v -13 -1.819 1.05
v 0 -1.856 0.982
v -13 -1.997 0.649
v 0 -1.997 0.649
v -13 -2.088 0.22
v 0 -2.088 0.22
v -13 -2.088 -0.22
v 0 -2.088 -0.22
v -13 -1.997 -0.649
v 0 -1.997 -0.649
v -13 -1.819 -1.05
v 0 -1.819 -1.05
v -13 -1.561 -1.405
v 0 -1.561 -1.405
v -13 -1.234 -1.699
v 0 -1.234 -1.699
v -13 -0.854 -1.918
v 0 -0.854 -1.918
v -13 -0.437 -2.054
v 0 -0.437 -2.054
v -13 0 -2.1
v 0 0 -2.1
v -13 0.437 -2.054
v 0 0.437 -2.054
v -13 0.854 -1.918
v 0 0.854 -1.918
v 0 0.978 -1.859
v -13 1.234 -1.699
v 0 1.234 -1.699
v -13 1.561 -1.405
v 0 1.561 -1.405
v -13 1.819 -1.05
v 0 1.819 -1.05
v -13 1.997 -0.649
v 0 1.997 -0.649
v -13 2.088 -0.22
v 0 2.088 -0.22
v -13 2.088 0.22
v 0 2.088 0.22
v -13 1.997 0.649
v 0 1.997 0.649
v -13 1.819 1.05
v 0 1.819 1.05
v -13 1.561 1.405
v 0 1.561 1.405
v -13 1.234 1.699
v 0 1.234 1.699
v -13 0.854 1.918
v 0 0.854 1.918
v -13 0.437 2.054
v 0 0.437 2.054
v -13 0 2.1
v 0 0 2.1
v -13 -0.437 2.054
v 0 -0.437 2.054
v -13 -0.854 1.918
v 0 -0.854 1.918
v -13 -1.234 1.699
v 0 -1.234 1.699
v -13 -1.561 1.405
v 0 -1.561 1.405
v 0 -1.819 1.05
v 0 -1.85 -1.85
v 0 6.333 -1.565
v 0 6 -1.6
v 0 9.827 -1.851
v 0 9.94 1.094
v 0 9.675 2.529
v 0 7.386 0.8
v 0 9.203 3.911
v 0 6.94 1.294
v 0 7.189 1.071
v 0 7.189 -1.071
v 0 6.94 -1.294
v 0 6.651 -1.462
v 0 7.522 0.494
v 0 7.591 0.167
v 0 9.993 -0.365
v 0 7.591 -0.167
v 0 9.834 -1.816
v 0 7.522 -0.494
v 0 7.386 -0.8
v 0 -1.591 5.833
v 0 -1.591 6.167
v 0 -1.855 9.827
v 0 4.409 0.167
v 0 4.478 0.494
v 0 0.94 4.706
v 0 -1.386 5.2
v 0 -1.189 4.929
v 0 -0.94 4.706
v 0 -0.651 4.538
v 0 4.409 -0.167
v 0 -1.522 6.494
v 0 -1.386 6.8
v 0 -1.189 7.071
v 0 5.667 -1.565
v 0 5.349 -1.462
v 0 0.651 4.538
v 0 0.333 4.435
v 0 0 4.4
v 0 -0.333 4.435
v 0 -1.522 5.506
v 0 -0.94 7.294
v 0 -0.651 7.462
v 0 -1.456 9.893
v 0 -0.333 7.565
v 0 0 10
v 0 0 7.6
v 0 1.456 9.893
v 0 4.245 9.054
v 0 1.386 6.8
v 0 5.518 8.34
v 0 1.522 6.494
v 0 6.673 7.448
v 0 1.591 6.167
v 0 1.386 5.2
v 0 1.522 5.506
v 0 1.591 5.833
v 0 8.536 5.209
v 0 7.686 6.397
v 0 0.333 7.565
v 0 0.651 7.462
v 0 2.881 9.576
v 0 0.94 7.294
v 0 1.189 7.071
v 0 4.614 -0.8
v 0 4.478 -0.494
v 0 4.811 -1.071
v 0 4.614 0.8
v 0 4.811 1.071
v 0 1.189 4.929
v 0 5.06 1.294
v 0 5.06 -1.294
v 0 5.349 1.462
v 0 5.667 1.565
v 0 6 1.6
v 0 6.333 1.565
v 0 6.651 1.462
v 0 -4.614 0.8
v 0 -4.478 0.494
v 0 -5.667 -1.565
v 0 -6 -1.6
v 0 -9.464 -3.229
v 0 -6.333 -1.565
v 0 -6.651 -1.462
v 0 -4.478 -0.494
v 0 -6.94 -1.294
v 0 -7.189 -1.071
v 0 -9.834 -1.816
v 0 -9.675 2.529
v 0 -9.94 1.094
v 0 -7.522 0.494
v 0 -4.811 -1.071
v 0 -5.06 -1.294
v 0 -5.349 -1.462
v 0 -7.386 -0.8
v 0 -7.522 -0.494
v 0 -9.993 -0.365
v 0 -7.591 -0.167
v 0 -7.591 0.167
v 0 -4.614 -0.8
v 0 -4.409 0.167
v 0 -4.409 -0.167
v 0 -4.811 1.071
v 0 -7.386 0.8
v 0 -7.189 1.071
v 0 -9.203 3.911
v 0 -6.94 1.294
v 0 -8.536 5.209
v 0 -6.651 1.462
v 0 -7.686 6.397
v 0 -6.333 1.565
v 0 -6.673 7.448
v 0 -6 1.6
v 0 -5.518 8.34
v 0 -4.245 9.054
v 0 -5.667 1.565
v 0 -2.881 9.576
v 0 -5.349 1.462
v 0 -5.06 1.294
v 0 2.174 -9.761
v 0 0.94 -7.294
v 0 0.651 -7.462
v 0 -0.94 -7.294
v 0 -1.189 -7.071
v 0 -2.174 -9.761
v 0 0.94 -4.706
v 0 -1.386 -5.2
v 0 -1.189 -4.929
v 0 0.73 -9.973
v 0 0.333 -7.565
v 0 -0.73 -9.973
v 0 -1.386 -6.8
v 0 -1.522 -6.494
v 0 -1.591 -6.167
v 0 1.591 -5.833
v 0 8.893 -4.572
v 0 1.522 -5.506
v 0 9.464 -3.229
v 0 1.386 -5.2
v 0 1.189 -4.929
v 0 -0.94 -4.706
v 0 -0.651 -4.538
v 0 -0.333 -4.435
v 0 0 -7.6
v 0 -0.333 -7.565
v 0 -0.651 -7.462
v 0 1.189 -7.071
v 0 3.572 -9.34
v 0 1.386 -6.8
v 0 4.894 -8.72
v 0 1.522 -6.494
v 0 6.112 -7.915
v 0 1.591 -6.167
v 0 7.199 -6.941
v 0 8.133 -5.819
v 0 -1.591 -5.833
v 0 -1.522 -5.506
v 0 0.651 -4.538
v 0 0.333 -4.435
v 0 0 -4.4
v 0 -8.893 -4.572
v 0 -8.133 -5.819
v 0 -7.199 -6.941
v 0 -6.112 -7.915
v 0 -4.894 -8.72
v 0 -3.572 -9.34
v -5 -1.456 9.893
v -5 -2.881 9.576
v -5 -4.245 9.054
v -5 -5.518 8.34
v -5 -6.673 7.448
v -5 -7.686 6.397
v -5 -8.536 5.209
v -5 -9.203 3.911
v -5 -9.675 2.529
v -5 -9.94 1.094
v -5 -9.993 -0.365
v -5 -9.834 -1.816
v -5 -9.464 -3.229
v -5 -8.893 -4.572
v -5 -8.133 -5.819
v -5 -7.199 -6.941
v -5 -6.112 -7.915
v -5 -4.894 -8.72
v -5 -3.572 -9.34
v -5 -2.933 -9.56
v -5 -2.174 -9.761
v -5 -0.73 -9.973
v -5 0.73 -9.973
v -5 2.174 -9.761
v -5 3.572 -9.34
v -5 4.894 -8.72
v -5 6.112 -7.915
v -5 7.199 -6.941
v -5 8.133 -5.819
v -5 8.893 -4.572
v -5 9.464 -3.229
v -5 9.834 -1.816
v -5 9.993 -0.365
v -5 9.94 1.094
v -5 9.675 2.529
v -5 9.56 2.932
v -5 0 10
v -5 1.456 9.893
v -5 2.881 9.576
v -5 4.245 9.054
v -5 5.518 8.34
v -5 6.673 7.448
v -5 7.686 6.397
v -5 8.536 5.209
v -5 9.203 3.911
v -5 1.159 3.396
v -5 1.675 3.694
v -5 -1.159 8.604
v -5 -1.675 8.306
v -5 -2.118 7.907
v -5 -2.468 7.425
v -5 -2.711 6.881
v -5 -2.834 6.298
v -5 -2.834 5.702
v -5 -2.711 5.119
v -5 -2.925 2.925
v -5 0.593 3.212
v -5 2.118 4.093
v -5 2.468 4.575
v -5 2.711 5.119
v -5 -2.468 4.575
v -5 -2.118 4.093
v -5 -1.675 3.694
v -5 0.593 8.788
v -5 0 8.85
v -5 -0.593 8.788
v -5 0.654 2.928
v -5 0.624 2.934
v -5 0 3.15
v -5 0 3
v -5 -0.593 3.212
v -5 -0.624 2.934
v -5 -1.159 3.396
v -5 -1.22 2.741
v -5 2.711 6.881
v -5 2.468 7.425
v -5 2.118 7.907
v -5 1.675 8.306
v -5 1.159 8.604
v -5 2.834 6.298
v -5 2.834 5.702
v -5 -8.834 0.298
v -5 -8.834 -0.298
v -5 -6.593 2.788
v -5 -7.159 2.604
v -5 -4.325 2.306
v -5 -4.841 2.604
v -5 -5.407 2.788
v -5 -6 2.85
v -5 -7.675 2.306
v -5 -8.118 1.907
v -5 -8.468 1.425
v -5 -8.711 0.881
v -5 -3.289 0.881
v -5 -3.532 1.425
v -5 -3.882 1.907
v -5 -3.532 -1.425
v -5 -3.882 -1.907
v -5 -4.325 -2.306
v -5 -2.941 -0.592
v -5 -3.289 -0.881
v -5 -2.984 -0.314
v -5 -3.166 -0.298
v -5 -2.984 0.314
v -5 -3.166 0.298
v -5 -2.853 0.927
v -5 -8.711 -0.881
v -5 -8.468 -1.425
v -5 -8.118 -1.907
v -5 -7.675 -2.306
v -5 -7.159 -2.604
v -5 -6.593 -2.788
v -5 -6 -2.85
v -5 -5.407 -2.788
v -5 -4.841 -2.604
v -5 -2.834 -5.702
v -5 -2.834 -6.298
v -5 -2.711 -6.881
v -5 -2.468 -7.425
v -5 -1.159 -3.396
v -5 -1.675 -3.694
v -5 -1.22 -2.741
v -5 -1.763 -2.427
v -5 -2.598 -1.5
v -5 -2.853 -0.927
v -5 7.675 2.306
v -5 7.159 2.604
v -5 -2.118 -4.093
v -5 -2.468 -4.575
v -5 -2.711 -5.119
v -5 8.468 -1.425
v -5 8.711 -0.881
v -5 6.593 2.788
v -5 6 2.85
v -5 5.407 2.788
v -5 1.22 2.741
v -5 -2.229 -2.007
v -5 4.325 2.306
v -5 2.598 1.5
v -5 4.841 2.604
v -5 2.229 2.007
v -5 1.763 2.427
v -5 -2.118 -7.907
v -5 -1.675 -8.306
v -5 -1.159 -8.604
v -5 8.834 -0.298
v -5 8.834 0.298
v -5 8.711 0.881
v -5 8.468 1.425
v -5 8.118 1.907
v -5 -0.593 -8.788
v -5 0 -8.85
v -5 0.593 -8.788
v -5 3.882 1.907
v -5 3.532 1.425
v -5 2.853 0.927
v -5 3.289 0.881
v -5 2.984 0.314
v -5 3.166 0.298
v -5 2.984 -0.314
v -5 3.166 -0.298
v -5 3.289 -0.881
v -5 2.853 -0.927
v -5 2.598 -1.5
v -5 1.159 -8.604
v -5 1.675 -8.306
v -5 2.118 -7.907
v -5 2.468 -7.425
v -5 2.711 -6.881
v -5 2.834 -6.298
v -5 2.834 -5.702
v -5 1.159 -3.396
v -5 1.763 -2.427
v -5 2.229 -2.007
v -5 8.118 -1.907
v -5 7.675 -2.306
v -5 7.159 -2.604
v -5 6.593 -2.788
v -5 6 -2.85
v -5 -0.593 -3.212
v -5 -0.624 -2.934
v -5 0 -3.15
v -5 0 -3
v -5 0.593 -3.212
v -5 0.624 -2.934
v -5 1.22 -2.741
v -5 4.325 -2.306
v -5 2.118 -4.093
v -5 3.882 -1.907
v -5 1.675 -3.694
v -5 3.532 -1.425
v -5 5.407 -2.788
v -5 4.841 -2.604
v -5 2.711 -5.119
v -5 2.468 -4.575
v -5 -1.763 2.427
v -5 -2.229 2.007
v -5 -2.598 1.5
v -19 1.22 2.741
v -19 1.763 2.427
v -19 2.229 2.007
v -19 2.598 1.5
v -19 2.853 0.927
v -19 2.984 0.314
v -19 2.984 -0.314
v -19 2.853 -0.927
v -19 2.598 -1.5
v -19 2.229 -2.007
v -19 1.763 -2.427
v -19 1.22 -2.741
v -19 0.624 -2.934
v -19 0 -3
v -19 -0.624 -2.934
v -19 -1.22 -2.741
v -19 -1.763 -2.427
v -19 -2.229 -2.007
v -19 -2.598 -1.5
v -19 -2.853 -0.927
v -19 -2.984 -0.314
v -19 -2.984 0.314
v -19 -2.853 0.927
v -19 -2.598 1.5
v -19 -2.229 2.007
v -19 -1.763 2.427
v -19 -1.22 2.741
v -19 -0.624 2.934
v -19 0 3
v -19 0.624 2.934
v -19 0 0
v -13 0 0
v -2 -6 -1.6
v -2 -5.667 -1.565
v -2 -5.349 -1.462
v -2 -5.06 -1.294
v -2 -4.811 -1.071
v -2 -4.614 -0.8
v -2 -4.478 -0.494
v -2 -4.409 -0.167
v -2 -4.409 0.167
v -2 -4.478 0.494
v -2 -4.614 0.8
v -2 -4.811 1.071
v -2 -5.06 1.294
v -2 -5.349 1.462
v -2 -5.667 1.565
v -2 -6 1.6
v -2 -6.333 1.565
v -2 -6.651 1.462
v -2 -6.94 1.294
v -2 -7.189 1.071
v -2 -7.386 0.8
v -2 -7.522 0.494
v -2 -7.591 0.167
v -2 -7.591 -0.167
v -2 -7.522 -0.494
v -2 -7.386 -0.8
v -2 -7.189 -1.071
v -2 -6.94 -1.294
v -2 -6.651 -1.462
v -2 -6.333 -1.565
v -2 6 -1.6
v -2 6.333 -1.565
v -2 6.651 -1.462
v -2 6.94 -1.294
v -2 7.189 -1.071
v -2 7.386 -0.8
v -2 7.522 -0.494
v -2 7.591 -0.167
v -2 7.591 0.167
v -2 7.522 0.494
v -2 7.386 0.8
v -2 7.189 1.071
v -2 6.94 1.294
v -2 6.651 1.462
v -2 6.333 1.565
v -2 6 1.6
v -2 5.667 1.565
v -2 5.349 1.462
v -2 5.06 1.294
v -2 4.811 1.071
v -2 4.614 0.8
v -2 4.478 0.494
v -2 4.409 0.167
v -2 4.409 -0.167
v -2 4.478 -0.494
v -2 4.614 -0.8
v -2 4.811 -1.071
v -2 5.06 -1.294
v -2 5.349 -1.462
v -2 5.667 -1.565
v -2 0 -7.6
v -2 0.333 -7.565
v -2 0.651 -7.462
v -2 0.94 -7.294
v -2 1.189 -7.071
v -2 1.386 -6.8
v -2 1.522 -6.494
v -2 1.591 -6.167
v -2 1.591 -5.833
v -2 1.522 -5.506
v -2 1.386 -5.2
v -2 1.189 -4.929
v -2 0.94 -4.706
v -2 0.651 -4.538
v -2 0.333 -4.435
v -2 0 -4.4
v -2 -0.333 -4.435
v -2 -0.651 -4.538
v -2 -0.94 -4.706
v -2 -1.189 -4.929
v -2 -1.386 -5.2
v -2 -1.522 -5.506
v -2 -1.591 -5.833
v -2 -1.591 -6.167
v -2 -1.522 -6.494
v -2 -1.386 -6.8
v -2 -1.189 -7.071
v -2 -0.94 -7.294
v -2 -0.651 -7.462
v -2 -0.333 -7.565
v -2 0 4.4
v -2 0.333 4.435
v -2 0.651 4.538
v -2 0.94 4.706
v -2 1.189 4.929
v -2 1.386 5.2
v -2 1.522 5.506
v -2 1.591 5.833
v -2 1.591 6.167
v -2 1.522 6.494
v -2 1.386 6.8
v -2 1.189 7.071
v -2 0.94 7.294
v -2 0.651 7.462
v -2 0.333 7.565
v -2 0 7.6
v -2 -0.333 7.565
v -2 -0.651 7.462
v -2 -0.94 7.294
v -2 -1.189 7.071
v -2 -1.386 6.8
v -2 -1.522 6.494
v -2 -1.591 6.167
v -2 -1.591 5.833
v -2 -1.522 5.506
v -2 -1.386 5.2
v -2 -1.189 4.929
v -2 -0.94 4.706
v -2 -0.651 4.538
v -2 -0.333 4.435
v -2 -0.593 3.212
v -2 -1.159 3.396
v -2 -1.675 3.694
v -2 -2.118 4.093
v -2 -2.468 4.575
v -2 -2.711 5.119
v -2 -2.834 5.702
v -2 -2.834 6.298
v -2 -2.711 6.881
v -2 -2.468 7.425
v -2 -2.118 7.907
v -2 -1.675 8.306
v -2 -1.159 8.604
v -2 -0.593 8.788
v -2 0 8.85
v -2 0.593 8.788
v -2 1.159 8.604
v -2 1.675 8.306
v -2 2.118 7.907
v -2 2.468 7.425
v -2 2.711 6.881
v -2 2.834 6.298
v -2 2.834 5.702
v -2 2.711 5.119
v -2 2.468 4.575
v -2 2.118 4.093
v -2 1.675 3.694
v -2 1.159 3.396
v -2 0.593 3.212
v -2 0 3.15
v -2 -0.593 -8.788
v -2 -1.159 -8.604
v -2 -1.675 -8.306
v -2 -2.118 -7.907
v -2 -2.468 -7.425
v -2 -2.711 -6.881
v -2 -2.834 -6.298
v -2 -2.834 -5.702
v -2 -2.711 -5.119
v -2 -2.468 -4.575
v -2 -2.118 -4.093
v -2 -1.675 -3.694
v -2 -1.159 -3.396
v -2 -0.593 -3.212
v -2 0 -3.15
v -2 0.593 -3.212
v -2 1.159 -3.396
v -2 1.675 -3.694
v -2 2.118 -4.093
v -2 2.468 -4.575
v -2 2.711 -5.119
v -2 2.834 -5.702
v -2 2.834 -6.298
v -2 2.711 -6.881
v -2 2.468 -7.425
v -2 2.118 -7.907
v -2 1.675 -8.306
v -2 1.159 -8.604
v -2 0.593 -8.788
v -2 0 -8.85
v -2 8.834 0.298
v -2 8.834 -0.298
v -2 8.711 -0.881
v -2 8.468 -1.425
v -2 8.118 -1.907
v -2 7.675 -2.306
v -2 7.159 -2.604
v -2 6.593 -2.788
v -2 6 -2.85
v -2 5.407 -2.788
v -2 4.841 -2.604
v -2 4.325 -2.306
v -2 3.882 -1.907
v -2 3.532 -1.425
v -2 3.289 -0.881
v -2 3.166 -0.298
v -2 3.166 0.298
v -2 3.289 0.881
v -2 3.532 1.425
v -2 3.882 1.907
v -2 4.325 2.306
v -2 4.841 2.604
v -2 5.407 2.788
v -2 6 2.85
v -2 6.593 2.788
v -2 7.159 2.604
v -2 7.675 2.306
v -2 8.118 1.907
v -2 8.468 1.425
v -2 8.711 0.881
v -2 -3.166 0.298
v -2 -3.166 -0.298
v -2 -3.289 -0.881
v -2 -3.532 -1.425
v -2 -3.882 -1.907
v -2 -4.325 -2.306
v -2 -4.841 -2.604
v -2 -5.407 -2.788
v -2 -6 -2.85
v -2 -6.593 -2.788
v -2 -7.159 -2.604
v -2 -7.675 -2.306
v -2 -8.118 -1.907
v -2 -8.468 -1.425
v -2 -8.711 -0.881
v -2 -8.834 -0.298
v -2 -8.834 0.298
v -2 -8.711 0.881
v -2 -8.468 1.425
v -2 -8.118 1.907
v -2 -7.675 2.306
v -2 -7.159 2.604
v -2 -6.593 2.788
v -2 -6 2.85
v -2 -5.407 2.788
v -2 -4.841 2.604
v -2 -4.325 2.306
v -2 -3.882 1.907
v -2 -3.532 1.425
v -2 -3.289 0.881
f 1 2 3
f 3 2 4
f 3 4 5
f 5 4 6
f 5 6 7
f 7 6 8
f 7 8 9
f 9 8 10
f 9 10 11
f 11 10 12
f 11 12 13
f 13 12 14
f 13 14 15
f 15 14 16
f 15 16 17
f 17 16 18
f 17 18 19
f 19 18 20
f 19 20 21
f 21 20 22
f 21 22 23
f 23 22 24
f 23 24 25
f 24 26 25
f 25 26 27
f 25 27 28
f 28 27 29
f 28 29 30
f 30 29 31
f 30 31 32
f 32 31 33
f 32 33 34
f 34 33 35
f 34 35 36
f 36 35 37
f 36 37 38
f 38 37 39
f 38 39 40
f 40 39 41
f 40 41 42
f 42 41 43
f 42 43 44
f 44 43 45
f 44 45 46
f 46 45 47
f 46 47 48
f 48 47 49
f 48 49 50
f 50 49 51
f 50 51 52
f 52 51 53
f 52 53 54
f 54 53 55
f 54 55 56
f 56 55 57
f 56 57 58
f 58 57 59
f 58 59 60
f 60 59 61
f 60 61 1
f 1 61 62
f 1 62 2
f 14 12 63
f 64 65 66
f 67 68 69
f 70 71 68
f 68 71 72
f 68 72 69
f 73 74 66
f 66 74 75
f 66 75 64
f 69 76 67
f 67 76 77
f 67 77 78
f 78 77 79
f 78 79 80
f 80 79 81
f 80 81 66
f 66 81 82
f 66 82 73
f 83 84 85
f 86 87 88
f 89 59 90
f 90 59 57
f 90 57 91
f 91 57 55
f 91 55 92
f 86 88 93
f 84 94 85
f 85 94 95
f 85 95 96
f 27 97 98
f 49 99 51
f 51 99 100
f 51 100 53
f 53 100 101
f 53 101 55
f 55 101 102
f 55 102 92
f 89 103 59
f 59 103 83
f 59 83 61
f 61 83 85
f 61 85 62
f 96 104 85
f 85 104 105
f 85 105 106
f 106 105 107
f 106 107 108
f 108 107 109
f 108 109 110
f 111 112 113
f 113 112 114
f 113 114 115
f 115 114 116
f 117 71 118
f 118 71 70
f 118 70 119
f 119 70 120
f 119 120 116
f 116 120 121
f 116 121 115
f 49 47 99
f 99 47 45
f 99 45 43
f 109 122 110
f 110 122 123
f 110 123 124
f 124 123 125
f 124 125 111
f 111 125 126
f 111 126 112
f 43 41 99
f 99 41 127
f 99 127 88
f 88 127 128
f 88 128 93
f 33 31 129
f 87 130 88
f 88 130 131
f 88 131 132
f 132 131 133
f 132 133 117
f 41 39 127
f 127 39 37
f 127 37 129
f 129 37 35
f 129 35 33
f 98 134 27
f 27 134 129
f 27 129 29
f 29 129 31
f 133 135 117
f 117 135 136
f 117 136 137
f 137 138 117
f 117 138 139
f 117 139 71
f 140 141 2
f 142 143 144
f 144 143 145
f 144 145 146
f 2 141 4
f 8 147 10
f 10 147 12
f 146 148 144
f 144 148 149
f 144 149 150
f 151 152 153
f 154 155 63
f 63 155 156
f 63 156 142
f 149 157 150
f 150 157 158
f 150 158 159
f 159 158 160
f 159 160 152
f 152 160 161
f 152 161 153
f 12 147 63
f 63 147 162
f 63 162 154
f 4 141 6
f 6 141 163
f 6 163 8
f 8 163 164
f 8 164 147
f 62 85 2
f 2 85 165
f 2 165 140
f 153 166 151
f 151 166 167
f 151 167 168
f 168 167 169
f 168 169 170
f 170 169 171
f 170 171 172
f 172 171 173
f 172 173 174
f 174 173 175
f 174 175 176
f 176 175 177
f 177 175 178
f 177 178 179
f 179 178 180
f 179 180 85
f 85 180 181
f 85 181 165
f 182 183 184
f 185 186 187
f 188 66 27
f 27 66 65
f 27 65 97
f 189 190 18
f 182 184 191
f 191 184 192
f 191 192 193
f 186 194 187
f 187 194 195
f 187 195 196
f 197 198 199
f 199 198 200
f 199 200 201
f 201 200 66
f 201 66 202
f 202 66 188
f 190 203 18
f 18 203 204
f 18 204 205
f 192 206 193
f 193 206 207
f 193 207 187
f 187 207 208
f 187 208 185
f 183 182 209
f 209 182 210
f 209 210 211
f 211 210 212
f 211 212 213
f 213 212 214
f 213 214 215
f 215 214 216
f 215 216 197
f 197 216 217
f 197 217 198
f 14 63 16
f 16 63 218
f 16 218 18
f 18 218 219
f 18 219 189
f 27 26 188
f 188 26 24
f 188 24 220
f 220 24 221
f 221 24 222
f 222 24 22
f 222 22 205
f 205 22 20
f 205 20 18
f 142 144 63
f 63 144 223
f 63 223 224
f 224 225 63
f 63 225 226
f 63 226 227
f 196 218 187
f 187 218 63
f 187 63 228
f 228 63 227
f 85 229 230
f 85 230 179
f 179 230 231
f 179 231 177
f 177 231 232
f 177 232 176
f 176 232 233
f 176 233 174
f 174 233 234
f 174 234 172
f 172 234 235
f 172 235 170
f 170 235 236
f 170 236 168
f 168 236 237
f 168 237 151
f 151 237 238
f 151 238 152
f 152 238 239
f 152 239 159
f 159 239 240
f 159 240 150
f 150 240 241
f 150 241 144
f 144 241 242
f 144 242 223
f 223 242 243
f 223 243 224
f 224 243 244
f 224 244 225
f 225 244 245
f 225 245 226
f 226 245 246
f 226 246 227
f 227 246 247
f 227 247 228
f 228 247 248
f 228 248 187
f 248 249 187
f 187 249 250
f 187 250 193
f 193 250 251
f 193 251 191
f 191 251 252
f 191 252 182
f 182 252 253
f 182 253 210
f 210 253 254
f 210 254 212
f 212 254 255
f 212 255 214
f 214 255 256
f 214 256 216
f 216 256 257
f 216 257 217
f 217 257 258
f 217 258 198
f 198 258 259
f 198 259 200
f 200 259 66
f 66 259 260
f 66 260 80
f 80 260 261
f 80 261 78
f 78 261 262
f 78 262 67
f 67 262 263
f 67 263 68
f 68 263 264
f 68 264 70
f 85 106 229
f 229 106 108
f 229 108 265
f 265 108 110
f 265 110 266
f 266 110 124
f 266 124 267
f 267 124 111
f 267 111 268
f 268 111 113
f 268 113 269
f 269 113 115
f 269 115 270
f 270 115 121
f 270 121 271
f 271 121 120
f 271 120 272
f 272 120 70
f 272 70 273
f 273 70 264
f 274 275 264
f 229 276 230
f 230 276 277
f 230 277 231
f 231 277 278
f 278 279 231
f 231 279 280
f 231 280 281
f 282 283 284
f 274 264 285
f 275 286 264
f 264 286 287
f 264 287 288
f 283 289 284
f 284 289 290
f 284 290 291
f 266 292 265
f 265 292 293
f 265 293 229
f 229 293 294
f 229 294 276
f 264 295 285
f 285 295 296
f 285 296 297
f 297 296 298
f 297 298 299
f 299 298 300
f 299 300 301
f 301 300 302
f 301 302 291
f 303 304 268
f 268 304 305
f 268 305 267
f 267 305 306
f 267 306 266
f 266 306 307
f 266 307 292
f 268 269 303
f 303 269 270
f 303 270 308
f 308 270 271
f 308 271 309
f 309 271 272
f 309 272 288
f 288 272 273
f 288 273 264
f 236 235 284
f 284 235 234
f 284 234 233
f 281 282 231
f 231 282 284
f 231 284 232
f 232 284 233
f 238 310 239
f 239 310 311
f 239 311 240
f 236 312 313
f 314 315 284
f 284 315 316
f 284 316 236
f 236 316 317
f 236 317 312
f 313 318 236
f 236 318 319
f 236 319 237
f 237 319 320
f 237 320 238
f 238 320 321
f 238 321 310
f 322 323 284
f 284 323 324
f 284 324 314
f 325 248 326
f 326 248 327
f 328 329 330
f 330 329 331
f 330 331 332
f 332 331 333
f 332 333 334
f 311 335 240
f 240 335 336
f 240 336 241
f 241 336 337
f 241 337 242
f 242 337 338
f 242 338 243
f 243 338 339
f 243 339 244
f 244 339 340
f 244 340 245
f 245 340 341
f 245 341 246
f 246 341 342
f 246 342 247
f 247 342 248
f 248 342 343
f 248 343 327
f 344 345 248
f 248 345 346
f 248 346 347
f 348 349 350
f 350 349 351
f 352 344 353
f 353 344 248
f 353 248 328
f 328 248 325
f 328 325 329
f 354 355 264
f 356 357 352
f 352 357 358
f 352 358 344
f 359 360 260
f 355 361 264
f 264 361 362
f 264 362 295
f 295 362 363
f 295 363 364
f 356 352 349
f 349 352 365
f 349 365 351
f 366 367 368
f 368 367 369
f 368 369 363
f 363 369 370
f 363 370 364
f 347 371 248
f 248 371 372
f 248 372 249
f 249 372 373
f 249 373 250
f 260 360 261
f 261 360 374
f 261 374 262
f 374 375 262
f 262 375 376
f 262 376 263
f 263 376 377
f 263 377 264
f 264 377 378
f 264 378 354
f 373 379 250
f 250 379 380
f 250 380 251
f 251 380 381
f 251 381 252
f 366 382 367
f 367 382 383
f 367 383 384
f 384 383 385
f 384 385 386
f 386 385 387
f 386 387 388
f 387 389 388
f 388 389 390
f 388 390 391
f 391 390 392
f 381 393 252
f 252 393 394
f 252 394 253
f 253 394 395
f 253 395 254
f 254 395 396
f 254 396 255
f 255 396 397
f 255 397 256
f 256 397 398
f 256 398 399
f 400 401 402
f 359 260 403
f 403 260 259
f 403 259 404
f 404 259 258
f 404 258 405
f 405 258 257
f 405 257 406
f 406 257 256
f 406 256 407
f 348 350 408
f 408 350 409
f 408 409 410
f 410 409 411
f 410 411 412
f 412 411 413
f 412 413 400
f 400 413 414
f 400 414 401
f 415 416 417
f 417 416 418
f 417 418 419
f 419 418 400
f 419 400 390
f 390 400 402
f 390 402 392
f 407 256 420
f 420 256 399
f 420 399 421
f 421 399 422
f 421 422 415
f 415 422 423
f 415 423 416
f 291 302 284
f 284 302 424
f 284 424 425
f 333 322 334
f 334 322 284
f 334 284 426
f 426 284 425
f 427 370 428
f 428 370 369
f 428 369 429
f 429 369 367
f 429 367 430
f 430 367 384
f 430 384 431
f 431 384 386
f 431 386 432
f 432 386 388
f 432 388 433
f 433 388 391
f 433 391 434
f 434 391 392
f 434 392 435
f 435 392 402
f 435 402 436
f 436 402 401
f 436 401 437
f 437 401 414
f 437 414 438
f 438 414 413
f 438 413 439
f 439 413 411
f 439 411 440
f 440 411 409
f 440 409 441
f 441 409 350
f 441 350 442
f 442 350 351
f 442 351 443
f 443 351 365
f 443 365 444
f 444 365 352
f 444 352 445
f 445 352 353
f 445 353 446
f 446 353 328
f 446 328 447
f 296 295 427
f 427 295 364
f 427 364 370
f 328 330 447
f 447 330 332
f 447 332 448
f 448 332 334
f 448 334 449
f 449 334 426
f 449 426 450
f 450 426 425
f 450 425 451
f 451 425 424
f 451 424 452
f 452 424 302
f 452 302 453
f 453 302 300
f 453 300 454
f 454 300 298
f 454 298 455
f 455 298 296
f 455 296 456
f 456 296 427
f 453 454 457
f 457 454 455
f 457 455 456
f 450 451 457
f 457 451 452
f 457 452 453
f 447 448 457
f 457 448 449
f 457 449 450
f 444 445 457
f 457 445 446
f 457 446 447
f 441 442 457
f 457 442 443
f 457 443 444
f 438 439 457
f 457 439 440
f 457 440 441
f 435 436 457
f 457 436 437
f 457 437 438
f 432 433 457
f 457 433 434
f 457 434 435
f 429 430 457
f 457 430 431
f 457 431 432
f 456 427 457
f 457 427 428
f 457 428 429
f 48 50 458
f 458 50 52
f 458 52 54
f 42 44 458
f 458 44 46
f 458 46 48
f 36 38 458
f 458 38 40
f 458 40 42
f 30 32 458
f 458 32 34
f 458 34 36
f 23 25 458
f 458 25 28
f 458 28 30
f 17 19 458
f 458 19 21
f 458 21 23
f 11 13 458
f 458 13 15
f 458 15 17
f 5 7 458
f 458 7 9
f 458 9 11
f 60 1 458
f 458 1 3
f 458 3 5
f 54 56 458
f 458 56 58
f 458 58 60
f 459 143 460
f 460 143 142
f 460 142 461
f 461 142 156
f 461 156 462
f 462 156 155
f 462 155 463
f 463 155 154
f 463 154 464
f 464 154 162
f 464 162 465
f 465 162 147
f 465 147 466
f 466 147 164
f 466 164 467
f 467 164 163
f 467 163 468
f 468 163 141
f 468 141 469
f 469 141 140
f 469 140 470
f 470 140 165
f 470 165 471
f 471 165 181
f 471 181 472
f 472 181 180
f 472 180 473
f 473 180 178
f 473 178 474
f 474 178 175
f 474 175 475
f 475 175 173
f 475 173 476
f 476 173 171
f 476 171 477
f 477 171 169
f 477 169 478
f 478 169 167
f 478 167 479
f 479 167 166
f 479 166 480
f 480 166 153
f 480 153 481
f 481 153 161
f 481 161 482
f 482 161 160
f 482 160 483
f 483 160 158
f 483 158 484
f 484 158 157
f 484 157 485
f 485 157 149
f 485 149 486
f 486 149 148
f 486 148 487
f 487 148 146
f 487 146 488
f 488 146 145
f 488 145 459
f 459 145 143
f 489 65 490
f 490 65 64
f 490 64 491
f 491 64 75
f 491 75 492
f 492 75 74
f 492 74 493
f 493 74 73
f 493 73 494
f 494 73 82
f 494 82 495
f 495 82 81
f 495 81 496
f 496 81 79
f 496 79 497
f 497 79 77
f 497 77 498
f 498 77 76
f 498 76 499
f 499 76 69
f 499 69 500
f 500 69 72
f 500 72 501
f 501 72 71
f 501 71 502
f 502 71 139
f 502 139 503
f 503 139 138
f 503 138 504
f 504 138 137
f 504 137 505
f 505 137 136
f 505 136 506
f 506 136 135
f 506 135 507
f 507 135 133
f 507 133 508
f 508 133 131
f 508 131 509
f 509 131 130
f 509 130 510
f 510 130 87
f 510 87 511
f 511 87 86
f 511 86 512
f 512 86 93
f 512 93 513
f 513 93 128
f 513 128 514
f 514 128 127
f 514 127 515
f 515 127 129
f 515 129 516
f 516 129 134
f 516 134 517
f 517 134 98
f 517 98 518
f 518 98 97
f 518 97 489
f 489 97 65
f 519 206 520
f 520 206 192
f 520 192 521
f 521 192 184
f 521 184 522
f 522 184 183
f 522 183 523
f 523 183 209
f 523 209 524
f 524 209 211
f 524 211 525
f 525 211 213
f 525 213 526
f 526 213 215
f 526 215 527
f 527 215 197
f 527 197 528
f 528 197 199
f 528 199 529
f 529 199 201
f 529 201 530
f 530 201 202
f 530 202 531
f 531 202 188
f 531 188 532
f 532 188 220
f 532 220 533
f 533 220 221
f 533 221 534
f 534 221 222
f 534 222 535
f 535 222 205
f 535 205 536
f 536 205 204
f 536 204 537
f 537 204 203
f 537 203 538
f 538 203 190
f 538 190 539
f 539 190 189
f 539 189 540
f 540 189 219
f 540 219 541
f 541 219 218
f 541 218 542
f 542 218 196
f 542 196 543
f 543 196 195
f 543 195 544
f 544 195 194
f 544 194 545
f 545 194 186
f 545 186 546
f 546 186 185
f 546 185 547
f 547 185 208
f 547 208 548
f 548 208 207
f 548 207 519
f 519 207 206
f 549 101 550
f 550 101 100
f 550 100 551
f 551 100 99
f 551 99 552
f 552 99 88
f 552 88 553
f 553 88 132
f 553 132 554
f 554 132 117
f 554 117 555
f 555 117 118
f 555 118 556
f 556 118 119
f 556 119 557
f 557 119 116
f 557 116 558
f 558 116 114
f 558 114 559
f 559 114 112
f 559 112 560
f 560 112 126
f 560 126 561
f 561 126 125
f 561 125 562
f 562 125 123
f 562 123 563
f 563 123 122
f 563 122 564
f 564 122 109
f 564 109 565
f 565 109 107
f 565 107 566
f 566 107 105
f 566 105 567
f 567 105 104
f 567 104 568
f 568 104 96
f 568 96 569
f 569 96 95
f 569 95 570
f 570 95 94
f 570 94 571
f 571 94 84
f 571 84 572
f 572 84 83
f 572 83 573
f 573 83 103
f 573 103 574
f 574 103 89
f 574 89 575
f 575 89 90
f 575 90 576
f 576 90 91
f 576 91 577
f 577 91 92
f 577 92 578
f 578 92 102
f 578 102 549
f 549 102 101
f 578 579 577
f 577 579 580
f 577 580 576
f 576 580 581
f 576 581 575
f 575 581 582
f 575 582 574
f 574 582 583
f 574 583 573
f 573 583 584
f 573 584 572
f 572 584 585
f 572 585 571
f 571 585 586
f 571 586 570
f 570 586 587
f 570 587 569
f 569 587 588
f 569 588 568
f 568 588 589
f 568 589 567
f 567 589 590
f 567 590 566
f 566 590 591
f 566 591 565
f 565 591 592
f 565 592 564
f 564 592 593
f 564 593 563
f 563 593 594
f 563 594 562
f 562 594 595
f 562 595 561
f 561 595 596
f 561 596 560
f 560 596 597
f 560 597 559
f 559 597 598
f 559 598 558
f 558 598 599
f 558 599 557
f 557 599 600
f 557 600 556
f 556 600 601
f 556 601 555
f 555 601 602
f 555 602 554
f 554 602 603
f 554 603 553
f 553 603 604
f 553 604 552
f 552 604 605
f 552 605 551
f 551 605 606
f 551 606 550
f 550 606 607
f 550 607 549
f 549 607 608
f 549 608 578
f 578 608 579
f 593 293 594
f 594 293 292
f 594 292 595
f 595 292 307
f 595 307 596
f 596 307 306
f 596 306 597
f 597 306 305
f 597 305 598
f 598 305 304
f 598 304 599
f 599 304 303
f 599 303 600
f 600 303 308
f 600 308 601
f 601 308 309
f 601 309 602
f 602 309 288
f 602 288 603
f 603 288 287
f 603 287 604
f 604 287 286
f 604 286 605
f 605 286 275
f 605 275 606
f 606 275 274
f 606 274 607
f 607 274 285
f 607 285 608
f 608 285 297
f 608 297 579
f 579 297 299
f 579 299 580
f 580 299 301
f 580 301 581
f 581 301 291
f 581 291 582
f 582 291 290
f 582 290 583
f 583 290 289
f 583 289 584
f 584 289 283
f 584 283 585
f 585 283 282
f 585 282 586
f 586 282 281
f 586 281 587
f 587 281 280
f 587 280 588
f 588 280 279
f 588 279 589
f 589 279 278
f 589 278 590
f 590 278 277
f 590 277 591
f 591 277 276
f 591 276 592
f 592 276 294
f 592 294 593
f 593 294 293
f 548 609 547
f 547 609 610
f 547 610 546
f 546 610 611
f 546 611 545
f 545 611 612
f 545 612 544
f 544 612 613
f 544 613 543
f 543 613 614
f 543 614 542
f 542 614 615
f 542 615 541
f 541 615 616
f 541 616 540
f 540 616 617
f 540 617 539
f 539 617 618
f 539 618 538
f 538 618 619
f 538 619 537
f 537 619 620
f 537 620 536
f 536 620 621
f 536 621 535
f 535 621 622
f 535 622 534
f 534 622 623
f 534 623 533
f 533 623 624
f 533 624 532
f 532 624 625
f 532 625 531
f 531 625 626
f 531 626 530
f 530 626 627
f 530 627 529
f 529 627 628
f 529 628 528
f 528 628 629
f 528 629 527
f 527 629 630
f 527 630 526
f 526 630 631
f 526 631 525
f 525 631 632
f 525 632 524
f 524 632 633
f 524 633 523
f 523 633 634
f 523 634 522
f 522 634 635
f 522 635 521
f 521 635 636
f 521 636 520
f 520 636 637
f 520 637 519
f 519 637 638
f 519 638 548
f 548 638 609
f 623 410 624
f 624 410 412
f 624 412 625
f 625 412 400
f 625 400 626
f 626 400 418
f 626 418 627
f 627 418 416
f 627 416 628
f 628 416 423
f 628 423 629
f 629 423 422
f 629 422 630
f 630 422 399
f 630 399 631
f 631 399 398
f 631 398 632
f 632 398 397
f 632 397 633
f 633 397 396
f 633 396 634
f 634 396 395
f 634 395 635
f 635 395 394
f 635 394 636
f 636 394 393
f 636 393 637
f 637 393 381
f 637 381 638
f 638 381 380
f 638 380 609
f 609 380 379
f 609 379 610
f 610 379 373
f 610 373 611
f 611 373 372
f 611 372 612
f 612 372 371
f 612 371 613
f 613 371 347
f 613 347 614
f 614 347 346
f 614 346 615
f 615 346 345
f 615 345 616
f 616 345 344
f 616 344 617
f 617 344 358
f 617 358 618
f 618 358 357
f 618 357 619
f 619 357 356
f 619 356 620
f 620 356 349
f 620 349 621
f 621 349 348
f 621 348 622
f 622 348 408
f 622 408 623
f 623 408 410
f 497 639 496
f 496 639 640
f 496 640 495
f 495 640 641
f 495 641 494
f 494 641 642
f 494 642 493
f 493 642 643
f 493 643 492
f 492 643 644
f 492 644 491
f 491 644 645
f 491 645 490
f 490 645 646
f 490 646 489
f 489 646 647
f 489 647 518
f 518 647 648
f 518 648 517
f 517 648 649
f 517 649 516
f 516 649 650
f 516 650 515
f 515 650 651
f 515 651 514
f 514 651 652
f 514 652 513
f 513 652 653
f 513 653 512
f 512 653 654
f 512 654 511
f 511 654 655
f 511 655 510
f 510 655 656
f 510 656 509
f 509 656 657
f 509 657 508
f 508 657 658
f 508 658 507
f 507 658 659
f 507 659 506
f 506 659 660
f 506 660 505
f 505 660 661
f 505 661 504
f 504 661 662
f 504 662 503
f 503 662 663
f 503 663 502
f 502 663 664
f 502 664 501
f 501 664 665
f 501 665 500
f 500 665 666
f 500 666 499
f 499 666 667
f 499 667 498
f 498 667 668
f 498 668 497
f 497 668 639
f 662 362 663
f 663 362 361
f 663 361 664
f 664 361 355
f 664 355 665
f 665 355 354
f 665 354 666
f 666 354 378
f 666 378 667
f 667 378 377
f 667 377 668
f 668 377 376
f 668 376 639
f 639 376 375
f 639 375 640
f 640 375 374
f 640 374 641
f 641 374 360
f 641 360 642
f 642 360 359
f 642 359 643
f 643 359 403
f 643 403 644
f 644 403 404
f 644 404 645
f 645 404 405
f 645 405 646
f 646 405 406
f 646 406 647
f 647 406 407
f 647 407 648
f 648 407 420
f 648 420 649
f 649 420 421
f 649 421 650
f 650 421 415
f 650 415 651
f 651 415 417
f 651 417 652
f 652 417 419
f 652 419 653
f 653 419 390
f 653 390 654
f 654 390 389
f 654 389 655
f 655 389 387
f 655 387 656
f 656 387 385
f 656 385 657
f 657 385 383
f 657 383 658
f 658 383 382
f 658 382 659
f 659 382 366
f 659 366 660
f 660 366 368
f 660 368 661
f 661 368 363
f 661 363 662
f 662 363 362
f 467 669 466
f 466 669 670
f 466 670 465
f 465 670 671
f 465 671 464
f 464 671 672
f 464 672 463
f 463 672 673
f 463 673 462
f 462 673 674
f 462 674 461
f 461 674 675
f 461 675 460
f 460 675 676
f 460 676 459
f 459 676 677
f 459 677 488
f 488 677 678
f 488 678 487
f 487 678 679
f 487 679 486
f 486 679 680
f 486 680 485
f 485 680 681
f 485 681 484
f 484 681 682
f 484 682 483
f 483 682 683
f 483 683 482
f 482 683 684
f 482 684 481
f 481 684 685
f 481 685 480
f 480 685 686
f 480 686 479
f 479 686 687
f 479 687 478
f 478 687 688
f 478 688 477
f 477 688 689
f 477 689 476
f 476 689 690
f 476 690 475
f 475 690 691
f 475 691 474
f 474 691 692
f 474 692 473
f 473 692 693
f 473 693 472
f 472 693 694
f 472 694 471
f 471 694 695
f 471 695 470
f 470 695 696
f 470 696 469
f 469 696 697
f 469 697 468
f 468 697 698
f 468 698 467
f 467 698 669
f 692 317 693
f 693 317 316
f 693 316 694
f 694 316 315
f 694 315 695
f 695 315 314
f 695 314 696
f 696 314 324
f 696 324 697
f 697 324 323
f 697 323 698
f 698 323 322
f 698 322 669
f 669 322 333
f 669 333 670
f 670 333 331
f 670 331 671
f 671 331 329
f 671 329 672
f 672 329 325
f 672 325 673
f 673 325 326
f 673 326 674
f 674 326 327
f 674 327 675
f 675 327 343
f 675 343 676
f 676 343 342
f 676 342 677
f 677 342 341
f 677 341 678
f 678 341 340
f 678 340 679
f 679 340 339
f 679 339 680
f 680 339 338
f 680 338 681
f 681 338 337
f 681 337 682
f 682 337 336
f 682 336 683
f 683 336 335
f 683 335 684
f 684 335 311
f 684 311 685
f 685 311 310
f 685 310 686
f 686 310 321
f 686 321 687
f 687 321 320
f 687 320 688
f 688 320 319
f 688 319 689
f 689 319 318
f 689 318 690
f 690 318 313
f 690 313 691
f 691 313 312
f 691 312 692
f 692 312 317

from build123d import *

# Parameters (mm, degrees)
CUT_EXTRUDE1_DEPTH      = 24.685438565
CUT_EXTRUDE1_DEPTH_BACK = 24.685438565
SKETCH2_R               = 1.6
SKETCH3_R               = 2.85
CUT_EXTRUDE2_DEPTH      = 3


with BuildPart() as part:
    # Sketch1 → Revolve1 (revolve)
    with BuildSketch(Plane.XY, mode=Mode.PRIVATE) as revolve1_sk:
        Polygon((0, 2.1), (0, 10), (-5, 10), (-5, 3), (-19, 3), (-19, 0), (-13, 0), (-13, 2.1), align=None)
    revolve(revolve1_sk.sketch.rotate(Axis((-10, 0, 0), (1, 0, 0)), 90), axis=Axis((-10, 0, 0), (1, 0, 0)))

    # Sketch2 → Cut-Extrude1 (cut, two sides: drawn at the far end of the back side and taken through both)
    with BuildSketch(Plane(origin=(0, 0, 0), x_dir=(0, 0, -1), z_dir=(1, 0, 0)).offset(-CUT_EXTRUDE1_DEPTH_BACK)):
        with Locations((-6, 0)):
            Circle(SKETCH2_R)
        with Locations((6, 0)):
            Circle(SKETCH2_R)
        with Locations((0, 6)):
            Circle(SKETCH2_R)
        with Locations((0, -6)):
            Circle(SKETCH2_R)
    extrude(amount=CUT_EXTRUDE1_DEPTH + CUT_EXTRUDE1_DEPTH_BACK, mode=Mode.SUBTRACT)

    # Sketch3 → Cut-Extrude2 (cut)
    with BuildSketch(Plane(origin=(-5, 0, 0), x_dir=(0, 0, -1), z_dir=(1, 0, 0))):
        with Locations((-6, 0)):
            Circle(SKETCH3_R)
        with Locations((6, 0)):
            Circle(SKETCH3_R)
        with Locations((0, 6)):
            Circle(SKETCH3_R)
        with Locations((0, -6)):
            Circle(SKETCH3_R)
    extrude(amount=CUT_EXTRUDE2_DEPTH, mode=Mode.SUBTRACT)


solid = part.part
